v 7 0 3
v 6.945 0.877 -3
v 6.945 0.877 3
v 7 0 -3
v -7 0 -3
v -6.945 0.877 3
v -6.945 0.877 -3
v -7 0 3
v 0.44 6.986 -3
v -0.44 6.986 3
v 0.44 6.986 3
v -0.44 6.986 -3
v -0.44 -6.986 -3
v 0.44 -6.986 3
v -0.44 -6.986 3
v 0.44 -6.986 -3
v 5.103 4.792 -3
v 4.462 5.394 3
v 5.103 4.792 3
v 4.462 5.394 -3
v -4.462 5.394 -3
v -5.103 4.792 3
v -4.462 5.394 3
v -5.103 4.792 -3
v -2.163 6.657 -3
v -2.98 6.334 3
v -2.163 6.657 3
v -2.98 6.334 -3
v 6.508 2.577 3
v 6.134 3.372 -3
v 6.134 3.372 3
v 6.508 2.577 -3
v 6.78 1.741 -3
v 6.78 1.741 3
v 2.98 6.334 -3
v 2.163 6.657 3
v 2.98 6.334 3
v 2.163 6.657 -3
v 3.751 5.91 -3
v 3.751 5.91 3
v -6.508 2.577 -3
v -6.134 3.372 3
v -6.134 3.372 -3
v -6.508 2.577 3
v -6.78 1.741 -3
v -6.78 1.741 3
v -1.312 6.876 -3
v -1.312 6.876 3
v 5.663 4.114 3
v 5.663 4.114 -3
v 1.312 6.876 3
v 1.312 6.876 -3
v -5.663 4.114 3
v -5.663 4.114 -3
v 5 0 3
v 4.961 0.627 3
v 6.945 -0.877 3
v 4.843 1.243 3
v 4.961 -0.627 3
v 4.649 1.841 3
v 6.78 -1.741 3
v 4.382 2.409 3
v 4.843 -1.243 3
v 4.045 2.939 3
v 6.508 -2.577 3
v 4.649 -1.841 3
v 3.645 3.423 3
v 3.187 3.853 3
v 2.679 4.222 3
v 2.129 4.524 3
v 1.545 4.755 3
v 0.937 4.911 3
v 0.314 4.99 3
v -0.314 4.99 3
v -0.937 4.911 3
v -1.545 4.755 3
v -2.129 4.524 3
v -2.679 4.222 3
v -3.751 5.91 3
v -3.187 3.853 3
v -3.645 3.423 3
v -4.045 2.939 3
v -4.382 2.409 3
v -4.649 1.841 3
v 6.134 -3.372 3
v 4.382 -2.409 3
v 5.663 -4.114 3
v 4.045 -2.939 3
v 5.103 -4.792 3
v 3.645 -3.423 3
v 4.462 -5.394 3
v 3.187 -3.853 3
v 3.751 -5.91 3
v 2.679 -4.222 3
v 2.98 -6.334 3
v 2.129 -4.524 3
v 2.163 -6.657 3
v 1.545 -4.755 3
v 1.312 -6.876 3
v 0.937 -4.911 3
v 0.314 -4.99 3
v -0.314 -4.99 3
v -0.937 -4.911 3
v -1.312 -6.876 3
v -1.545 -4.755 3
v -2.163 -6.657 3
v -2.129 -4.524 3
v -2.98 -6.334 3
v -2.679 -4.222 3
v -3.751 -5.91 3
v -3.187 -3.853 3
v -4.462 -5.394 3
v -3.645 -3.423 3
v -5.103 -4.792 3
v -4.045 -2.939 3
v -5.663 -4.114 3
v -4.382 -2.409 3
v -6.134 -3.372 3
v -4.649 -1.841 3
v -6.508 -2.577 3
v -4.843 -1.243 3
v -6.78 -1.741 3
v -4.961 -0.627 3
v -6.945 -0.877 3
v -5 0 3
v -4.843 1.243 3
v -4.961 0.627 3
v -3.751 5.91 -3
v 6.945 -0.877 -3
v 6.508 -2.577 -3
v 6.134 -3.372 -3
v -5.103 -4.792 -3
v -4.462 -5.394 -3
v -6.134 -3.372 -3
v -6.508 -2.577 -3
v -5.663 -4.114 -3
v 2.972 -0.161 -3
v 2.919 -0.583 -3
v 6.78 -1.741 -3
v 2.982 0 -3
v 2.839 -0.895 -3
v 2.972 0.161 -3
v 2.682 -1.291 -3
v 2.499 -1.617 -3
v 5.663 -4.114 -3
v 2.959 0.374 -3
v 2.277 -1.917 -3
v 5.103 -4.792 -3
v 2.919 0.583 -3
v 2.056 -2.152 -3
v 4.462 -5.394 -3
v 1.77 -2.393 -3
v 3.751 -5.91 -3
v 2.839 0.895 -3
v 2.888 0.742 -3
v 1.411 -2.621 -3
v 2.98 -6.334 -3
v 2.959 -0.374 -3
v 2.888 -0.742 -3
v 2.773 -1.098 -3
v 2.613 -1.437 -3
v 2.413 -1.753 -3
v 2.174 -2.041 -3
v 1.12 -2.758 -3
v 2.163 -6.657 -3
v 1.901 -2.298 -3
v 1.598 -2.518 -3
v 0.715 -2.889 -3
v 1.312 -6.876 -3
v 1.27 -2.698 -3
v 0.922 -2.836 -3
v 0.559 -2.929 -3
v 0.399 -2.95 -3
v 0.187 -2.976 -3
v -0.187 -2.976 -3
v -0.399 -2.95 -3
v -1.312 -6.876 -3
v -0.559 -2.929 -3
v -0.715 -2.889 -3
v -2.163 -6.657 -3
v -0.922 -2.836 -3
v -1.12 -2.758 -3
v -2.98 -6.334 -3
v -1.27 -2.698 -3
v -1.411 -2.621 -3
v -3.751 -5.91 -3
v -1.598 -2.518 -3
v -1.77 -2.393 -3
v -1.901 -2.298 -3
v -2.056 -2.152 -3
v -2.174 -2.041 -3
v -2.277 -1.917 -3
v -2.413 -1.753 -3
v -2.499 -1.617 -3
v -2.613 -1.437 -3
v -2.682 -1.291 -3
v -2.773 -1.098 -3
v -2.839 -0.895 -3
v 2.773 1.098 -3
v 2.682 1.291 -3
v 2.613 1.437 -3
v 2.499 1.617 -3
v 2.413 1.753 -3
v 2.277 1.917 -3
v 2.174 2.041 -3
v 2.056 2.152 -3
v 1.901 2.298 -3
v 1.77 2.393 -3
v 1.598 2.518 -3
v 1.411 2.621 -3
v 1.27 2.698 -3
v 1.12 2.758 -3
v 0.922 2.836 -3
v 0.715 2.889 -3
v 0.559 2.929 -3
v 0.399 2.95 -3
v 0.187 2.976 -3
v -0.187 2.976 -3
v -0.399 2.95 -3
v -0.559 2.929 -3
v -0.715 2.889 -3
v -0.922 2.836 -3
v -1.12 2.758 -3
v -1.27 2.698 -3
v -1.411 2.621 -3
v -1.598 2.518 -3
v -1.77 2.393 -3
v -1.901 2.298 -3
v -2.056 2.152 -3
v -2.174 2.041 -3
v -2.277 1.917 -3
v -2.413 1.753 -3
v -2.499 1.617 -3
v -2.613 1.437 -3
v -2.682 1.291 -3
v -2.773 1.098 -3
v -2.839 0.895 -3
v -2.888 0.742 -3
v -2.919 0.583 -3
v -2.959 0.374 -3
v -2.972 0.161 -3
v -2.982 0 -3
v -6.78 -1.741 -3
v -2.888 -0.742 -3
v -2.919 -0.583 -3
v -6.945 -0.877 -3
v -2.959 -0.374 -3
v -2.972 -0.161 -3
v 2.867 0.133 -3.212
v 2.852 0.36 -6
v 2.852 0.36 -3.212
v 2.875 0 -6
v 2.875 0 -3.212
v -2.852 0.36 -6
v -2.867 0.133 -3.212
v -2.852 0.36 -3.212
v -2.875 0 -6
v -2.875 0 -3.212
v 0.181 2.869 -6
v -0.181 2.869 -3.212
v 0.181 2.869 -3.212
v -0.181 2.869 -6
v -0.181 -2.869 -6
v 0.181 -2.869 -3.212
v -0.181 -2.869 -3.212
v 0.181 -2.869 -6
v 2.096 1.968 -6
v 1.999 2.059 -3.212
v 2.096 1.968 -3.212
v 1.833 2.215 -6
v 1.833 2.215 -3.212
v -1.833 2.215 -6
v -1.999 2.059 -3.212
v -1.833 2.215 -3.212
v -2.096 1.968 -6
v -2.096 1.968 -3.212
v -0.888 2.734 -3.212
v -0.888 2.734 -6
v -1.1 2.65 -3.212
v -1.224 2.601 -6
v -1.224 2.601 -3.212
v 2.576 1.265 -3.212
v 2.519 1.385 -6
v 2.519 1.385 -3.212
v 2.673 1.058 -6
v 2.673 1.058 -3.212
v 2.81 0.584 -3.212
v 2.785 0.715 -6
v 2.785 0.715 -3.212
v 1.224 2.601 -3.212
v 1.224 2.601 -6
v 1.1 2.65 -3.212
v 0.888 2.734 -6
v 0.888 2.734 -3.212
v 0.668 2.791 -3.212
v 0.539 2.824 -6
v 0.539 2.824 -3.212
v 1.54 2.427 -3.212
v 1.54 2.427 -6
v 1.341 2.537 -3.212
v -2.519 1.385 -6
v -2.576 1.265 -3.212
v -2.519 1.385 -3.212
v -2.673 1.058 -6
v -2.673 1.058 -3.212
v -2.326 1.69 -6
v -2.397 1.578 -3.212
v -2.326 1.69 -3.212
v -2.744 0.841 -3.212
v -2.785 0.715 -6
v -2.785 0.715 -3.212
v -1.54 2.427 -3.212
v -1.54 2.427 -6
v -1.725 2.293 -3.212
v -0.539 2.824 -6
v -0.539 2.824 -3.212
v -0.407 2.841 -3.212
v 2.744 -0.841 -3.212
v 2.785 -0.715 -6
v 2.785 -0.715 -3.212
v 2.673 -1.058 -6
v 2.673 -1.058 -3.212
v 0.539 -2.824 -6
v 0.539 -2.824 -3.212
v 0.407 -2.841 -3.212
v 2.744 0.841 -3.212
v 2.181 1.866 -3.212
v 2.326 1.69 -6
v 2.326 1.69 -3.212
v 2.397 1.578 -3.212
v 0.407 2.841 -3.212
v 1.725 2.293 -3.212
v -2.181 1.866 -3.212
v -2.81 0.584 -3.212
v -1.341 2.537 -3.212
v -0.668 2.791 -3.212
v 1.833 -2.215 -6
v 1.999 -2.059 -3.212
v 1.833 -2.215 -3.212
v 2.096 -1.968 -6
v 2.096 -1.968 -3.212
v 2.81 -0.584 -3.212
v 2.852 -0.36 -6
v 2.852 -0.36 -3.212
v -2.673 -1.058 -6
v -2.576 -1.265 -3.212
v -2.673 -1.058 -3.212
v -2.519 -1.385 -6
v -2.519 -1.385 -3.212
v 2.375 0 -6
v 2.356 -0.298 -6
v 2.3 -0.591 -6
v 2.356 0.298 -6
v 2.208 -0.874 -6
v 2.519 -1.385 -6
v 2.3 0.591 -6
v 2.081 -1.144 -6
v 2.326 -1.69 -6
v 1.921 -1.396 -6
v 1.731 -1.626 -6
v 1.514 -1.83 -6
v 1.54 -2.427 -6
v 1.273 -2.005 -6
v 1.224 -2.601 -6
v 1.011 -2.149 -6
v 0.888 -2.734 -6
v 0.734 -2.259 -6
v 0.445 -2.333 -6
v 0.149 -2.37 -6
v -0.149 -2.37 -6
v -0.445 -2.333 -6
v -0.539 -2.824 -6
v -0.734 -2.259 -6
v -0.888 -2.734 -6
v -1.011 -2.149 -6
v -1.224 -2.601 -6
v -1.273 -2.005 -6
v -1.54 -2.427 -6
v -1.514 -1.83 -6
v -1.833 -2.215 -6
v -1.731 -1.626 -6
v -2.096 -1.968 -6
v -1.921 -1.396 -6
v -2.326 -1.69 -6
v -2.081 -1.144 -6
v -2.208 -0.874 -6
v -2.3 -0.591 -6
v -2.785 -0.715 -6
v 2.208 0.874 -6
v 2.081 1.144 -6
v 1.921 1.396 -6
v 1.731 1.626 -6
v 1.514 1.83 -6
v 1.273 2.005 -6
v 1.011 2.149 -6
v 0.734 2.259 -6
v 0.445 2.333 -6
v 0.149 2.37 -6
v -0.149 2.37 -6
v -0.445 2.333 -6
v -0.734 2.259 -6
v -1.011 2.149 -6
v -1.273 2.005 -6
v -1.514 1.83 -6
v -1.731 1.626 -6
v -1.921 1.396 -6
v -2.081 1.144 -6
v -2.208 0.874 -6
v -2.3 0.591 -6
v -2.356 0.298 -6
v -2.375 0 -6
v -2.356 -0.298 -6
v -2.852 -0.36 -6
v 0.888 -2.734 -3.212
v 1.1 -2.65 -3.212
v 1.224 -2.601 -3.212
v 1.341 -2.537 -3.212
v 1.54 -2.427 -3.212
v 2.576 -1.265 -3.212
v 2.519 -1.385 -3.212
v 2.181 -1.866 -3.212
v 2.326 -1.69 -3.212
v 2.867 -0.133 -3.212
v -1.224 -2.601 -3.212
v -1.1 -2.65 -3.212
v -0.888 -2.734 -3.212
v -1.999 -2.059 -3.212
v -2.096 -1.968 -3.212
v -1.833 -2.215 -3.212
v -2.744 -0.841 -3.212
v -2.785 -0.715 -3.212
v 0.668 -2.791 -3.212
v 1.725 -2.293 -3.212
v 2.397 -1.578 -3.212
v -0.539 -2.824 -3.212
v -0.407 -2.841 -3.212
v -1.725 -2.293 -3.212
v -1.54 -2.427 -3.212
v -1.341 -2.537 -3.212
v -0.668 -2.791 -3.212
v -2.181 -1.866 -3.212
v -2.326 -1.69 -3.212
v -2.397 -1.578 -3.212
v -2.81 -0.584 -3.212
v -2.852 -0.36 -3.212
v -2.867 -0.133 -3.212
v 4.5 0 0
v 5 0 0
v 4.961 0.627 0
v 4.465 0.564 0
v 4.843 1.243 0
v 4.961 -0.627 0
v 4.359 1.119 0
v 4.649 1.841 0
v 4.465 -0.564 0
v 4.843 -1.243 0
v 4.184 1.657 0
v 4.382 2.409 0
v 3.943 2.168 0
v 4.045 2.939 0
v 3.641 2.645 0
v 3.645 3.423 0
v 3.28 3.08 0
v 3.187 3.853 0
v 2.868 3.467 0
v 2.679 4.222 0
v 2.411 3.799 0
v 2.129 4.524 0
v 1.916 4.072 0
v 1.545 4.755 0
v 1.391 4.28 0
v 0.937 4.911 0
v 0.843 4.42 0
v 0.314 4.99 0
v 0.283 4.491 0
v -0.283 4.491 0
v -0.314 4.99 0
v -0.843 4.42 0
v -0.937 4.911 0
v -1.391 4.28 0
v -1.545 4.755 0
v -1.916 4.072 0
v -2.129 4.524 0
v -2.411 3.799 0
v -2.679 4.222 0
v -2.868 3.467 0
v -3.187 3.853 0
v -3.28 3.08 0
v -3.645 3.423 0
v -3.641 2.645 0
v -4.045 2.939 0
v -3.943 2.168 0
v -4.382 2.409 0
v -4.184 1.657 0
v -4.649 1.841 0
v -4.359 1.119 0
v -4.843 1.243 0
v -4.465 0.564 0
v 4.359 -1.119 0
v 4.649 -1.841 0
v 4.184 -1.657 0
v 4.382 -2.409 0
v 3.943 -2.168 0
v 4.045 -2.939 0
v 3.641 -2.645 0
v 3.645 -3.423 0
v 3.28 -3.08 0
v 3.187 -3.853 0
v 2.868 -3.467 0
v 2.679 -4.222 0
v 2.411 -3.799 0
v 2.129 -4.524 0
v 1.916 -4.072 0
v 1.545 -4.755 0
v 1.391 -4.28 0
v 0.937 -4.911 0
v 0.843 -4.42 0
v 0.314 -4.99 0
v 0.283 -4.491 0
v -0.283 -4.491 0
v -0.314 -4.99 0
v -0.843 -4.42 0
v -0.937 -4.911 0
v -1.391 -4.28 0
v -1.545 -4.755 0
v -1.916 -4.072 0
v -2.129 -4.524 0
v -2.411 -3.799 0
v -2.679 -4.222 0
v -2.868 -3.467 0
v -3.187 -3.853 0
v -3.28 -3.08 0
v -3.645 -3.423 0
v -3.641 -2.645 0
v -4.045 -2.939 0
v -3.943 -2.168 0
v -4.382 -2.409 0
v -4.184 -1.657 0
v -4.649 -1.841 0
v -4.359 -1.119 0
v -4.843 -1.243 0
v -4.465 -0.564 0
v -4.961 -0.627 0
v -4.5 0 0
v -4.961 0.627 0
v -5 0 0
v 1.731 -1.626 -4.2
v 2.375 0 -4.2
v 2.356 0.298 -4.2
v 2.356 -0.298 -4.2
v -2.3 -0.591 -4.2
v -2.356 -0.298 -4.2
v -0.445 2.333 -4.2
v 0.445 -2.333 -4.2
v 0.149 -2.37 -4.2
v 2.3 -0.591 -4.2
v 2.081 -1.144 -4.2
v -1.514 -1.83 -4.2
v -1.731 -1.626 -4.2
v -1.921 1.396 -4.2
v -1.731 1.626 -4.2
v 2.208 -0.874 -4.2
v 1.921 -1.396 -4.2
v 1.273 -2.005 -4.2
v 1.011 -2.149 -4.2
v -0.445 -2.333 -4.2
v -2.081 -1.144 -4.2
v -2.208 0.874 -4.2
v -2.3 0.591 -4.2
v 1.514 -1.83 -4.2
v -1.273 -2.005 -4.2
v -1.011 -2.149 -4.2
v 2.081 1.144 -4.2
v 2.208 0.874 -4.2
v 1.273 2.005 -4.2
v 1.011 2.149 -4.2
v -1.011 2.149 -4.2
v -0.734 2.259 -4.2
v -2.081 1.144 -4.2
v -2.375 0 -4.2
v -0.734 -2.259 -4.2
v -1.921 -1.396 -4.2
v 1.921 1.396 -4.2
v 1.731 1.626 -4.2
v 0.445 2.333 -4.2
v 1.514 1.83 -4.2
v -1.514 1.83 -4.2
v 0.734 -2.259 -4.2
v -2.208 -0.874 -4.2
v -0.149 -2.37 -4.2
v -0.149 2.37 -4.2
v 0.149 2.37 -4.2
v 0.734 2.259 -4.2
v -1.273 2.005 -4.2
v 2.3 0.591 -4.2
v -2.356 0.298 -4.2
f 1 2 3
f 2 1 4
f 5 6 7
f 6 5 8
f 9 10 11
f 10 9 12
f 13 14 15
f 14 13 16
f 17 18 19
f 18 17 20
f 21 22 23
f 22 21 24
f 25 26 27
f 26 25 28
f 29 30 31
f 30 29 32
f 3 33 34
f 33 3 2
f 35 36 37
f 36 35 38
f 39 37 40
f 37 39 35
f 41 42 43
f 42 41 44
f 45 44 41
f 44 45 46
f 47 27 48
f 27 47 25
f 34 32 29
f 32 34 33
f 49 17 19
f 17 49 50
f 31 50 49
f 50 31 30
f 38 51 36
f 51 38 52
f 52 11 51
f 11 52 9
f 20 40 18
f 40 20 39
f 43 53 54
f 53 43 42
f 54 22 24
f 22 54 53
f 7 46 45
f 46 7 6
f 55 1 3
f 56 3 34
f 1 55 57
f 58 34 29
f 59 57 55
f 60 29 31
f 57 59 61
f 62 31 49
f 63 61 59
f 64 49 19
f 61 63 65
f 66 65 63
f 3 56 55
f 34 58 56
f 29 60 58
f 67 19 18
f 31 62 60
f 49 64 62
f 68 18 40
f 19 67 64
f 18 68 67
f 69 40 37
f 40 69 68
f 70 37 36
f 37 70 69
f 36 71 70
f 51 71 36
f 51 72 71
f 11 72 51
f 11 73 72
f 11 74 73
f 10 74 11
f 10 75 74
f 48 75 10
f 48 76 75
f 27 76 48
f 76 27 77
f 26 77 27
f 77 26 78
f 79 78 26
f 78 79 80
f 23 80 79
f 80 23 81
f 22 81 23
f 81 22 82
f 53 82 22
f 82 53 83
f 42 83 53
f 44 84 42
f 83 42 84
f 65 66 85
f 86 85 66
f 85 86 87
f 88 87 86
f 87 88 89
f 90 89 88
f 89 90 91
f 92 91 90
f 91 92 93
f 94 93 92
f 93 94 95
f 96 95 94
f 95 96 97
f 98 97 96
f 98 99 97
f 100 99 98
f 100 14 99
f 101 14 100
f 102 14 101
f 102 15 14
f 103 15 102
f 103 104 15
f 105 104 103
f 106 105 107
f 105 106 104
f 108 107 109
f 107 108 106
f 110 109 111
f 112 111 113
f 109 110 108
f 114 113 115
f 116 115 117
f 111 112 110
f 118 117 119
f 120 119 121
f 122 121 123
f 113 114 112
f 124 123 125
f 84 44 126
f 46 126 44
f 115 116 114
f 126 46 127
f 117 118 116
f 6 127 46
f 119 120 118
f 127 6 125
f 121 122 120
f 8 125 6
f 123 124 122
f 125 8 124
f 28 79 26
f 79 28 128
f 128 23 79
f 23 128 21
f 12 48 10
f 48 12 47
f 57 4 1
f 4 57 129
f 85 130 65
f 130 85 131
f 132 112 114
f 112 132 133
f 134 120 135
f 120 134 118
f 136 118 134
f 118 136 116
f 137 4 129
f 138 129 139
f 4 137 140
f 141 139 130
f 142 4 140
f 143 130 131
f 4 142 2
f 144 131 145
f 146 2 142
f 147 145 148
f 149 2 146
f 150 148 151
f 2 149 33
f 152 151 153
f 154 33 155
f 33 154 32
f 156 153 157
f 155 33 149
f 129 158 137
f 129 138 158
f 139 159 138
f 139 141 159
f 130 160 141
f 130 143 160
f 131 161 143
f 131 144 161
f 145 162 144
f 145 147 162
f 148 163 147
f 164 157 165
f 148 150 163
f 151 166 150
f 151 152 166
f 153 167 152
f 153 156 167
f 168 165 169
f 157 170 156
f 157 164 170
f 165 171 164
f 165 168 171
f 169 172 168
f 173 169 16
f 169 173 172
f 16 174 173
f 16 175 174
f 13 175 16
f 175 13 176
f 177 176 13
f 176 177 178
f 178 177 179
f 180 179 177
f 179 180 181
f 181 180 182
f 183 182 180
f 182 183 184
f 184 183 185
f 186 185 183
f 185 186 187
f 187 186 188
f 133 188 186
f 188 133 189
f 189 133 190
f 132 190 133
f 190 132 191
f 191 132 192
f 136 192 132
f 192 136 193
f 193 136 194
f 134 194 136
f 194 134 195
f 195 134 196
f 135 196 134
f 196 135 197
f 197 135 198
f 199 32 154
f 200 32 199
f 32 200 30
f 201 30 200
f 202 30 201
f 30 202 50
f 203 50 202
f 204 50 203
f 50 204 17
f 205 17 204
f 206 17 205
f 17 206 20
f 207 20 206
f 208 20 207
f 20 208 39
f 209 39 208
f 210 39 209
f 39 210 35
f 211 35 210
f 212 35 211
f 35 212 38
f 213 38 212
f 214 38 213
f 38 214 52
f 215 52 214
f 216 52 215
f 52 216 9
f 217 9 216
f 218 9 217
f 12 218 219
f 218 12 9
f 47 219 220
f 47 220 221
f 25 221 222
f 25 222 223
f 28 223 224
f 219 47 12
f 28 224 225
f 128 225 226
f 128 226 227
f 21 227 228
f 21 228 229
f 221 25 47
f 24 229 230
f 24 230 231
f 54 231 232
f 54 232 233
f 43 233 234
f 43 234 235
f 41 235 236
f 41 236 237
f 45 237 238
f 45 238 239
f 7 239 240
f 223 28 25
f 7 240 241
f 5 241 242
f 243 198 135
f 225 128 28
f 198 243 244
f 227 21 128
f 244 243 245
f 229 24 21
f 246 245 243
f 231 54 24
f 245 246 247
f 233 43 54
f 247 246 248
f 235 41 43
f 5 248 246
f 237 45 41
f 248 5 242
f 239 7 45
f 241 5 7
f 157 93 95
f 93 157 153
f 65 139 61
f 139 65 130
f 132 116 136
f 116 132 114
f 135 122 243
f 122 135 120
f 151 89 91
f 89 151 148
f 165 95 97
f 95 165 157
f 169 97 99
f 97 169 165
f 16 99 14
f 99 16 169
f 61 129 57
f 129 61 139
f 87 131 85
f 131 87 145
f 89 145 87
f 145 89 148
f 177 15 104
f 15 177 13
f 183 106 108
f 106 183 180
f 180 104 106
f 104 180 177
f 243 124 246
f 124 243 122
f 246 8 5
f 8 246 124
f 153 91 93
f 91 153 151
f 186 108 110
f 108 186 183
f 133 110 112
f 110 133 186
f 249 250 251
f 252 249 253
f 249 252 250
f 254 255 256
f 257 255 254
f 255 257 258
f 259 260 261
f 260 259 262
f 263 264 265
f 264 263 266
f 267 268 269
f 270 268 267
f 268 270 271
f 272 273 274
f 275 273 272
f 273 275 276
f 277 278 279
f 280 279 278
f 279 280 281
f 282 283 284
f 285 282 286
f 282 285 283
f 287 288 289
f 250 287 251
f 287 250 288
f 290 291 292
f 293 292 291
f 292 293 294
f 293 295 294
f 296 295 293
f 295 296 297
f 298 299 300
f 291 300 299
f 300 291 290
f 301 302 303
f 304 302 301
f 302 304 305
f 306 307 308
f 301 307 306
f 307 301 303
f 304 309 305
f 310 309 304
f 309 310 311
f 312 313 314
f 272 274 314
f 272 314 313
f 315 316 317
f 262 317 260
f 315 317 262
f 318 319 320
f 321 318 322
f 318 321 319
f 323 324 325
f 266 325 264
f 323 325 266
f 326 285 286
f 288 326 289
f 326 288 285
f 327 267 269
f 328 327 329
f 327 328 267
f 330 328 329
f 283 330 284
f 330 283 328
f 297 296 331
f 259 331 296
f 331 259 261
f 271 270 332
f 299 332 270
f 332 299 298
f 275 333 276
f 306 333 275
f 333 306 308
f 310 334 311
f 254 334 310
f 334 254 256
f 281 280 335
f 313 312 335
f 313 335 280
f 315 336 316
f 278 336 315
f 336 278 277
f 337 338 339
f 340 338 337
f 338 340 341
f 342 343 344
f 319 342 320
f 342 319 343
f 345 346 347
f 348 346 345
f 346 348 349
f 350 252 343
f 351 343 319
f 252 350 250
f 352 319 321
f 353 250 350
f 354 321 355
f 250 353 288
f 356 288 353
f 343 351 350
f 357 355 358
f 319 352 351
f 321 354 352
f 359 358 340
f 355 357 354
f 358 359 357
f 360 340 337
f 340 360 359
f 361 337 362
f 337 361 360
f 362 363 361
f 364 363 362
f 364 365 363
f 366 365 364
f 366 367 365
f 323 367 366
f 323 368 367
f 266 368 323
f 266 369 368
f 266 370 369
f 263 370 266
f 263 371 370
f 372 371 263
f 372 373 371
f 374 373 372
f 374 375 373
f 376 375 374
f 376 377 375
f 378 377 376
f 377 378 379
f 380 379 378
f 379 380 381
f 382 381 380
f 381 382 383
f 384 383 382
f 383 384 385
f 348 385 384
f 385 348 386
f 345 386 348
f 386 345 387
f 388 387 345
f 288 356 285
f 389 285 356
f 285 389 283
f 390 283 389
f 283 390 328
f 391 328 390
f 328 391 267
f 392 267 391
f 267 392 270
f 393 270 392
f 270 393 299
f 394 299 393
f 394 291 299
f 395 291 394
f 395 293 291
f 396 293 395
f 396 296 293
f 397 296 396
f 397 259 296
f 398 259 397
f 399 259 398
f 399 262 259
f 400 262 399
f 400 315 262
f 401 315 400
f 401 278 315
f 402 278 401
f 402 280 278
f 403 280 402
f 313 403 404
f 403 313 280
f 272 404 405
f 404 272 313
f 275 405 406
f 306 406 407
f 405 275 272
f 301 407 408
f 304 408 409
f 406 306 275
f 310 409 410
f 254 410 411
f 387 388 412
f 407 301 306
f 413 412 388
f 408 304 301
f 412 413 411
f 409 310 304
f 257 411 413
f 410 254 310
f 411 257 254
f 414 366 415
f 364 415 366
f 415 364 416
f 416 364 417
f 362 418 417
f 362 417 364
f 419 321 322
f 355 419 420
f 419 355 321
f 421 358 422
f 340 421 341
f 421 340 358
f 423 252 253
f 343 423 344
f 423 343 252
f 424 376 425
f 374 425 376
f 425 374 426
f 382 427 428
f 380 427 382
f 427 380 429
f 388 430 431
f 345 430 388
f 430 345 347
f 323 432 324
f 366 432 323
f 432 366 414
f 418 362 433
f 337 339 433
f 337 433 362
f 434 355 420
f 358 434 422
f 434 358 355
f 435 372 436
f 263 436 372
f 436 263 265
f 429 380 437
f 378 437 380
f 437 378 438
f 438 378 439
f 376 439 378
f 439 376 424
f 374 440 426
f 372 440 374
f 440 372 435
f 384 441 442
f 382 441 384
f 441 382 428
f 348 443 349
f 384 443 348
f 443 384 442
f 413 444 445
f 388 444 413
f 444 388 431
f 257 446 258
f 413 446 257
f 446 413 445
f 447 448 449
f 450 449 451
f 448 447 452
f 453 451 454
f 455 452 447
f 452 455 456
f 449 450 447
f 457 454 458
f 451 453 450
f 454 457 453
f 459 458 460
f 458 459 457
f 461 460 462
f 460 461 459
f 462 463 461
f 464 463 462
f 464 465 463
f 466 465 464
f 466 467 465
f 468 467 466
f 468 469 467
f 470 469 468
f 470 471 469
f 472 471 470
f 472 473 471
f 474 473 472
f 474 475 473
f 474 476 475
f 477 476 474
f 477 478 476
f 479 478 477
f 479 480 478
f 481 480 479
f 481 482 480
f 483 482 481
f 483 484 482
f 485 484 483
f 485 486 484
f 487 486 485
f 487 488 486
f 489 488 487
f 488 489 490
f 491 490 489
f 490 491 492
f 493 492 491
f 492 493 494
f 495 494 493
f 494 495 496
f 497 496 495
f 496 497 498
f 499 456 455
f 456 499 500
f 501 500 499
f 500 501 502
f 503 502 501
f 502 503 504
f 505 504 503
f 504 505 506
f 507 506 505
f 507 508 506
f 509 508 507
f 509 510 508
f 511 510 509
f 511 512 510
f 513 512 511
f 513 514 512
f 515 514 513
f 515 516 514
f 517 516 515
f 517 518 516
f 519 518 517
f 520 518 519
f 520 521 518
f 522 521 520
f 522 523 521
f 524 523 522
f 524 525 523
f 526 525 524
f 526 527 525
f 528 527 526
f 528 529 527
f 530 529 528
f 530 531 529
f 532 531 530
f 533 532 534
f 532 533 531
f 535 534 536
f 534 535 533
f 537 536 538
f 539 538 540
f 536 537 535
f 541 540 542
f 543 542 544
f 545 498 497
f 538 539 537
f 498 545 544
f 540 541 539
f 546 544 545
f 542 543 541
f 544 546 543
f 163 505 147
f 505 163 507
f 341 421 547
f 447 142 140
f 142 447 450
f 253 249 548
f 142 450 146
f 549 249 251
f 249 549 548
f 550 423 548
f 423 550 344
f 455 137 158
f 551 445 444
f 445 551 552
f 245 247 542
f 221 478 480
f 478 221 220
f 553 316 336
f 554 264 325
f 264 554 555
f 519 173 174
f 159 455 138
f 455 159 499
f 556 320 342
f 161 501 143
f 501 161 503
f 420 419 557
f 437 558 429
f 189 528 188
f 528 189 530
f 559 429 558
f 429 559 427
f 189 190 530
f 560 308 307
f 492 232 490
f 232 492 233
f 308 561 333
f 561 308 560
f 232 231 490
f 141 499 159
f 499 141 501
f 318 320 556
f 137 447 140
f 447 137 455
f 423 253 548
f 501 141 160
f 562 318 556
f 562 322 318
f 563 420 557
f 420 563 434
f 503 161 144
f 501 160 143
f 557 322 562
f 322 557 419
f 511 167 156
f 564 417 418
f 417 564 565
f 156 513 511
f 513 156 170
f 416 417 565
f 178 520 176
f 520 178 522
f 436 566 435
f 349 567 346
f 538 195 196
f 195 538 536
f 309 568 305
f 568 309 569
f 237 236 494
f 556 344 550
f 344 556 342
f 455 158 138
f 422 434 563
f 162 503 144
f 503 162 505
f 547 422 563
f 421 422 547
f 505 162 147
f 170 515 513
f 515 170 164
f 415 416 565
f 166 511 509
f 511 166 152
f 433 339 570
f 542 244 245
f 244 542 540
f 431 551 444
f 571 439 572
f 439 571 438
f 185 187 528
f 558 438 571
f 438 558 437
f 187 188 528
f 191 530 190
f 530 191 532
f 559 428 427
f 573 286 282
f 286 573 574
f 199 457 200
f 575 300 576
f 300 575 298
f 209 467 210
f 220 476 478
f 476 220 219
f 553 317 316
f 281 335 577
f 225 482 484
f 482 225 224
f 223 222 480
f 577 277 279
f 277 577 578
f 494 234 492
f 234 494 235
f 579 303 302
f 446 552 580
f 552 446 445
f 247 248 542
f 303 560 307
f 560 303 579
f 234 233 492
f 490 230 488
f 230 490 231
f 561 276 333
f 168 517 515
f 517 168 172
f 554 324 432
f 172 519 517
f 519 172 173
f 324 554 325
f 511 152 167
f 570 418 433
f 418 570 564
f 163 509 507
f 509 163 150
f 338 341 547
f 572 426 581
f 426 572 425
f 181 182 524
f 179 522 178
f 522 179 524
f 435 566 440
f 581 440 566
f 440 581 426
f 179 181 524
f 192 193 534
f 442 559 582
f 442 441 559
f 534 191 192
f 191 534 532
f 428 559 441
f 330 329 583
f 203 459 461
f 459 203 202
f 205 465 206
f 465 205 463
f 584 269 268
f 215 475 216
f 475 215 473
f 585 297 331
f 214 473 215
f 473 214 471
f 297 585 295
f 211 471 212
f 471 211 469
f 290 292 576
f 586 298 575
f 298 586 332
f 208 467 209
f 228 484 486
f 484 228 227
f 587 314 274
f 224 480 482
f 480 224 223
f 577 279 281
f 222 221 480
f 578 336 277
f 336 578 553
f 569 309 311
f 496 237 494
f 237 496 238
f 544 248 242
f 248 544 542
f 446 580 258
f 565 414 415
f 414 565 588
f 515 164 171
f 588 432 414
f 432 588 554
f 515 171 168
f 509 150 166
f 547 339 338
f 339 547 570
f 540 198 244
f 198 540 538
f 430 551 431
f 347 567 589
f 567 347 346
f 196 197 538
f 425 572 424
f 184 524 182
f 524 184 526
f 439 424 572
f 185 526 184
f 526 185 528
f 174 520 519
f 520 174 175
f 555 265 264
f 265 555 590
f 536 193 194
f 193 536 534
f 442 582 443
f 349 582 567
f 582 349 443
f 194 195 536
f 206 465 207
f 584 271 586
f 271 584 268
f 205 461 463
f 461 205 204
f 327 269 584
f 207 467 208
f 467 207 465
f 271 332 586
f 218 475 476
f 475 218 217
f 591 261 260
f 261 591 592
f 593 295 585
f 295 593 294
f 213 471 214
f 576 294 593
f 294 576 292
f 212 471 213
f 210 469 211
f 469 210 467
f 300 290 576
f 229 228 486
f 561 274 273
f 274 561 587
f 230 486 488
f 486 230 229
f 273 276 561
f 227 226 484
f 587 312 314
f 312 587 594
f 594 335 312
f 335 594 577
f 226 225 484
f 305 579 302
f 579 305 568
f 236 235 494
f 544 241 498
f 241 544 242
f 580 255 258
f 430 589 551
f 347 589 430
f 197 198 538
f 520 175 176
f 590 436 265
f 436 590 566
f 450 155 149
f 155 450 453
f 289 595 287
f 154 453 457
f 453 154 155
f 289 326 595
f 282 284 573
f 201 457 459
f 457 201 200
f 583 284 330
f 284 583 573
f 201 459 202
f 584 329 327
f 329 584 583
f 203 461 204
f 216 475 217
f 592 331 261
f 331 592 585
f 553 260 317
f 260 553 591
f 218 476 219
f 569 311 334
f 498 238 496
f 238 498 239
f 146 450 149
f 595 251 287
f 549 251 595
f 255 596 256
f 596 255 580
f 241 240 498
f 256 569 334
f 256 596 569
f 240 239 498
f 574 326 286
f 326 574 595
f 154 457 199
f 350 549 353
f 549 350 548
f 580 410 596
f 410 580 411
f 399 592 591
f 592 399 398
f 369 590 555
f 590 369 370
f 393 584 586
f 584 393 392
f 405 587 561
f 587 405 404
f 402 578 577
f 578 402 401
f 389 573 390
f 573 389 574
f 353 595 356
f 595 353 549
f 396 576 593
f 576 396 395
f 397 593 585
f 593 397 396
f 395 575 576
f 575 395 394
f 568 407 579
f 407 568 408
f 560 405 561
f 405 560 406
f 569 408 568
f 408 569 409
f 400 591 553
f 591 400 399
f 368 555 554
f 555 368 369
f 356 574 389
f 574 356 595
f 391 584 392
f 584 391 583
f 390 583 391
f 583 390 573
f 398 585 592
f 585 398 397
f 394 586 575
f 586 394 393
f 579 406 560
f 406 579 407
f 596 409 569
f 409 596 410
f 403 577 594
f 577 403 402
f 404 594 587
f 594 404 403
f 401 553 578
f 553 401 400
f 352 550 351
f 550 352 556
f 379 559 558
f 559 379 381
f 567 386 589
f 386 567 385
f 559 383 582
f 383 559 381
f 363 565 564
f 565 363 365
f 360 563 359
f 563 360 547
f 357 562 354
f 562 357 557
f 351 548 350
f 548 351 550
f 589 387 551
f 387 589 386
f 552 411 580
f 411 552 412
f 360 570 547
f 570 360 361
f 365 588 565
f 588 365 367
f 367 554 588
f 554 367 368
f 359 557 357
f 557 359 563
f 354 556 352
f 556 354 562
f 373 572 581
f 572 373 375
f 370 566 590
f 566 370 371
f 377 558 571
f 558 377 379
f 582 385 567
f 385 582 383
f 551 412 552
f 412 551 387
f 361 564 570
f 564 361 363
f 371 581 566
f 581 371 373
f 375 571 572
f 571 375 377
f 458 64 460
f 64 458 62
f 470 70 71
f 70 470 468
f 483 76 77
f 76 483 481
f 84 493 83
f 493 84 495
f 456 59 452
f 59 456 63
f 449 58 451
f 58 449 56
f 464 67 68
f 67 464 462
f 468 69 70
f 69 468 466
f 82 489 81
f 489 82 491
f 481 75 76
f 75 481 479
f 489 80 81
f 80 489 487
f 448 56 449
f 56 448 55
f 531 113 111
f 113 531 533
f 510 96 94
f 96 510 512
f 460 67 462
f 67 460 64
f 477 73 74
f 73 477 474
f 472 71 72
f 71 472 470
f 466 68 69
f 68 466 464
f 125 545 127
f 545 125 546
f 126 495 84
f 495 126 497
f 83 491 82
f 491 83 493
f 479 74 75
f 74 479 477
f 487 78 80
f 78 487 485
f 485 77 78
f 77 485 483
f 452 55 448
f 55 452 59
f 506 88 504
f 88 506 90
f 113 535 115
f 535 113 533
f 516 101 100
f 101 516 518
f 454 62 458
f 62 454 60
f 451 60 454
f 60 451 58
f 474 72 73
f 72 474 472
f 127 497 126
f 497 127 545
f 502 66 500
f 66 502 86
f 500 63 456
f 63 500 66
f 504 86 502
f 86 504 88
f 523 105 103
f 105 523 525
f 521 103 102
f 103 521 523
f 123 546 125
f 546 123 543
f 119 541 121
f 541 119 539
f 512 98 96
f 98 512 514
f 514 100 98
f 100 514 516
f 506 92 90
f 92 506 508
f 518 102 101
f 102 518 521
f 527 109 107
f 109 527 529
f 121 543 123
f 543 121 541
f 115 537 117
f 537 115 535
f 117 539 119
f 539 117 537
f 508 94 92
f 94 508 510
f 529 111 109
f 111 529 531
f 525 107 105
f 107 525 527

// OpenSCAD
$fn = 50;

difference() {
	union() {
		translate(v = [0, 0, -3.0]) {
			cylinder(h = 6, r = 7.0);
		}
		#translate(v = [0, 0, -6.0]) {
			cylinder(h = 6, r = 2.875);
		}
	}
	union() {
		translate(v = [0, 0, 0]) {
			rotate(a = [0, 0, 0]) {
				difference() {
					union() {
						translate(v = [0, 0, -6.0]) {
							cylinder(h = 6, r = 2.25);
						}
						translate(v = [0, 0, -4.2]) {
							cylinder(h = 4.2, r1 = 2.375, r2 = 4.5);
						}
						translate(v = [0, 0, -6.0]) {
							cylinder(h = 6, r = 2.375);
						}
						translate(v = [0, 0, -6.0]) {
							cylinder(h = 6, r = 2.25);
						}
					}
					union();
				}
			}
		}
		#cylinder(h = 3, r = 5.0);
	}
}
